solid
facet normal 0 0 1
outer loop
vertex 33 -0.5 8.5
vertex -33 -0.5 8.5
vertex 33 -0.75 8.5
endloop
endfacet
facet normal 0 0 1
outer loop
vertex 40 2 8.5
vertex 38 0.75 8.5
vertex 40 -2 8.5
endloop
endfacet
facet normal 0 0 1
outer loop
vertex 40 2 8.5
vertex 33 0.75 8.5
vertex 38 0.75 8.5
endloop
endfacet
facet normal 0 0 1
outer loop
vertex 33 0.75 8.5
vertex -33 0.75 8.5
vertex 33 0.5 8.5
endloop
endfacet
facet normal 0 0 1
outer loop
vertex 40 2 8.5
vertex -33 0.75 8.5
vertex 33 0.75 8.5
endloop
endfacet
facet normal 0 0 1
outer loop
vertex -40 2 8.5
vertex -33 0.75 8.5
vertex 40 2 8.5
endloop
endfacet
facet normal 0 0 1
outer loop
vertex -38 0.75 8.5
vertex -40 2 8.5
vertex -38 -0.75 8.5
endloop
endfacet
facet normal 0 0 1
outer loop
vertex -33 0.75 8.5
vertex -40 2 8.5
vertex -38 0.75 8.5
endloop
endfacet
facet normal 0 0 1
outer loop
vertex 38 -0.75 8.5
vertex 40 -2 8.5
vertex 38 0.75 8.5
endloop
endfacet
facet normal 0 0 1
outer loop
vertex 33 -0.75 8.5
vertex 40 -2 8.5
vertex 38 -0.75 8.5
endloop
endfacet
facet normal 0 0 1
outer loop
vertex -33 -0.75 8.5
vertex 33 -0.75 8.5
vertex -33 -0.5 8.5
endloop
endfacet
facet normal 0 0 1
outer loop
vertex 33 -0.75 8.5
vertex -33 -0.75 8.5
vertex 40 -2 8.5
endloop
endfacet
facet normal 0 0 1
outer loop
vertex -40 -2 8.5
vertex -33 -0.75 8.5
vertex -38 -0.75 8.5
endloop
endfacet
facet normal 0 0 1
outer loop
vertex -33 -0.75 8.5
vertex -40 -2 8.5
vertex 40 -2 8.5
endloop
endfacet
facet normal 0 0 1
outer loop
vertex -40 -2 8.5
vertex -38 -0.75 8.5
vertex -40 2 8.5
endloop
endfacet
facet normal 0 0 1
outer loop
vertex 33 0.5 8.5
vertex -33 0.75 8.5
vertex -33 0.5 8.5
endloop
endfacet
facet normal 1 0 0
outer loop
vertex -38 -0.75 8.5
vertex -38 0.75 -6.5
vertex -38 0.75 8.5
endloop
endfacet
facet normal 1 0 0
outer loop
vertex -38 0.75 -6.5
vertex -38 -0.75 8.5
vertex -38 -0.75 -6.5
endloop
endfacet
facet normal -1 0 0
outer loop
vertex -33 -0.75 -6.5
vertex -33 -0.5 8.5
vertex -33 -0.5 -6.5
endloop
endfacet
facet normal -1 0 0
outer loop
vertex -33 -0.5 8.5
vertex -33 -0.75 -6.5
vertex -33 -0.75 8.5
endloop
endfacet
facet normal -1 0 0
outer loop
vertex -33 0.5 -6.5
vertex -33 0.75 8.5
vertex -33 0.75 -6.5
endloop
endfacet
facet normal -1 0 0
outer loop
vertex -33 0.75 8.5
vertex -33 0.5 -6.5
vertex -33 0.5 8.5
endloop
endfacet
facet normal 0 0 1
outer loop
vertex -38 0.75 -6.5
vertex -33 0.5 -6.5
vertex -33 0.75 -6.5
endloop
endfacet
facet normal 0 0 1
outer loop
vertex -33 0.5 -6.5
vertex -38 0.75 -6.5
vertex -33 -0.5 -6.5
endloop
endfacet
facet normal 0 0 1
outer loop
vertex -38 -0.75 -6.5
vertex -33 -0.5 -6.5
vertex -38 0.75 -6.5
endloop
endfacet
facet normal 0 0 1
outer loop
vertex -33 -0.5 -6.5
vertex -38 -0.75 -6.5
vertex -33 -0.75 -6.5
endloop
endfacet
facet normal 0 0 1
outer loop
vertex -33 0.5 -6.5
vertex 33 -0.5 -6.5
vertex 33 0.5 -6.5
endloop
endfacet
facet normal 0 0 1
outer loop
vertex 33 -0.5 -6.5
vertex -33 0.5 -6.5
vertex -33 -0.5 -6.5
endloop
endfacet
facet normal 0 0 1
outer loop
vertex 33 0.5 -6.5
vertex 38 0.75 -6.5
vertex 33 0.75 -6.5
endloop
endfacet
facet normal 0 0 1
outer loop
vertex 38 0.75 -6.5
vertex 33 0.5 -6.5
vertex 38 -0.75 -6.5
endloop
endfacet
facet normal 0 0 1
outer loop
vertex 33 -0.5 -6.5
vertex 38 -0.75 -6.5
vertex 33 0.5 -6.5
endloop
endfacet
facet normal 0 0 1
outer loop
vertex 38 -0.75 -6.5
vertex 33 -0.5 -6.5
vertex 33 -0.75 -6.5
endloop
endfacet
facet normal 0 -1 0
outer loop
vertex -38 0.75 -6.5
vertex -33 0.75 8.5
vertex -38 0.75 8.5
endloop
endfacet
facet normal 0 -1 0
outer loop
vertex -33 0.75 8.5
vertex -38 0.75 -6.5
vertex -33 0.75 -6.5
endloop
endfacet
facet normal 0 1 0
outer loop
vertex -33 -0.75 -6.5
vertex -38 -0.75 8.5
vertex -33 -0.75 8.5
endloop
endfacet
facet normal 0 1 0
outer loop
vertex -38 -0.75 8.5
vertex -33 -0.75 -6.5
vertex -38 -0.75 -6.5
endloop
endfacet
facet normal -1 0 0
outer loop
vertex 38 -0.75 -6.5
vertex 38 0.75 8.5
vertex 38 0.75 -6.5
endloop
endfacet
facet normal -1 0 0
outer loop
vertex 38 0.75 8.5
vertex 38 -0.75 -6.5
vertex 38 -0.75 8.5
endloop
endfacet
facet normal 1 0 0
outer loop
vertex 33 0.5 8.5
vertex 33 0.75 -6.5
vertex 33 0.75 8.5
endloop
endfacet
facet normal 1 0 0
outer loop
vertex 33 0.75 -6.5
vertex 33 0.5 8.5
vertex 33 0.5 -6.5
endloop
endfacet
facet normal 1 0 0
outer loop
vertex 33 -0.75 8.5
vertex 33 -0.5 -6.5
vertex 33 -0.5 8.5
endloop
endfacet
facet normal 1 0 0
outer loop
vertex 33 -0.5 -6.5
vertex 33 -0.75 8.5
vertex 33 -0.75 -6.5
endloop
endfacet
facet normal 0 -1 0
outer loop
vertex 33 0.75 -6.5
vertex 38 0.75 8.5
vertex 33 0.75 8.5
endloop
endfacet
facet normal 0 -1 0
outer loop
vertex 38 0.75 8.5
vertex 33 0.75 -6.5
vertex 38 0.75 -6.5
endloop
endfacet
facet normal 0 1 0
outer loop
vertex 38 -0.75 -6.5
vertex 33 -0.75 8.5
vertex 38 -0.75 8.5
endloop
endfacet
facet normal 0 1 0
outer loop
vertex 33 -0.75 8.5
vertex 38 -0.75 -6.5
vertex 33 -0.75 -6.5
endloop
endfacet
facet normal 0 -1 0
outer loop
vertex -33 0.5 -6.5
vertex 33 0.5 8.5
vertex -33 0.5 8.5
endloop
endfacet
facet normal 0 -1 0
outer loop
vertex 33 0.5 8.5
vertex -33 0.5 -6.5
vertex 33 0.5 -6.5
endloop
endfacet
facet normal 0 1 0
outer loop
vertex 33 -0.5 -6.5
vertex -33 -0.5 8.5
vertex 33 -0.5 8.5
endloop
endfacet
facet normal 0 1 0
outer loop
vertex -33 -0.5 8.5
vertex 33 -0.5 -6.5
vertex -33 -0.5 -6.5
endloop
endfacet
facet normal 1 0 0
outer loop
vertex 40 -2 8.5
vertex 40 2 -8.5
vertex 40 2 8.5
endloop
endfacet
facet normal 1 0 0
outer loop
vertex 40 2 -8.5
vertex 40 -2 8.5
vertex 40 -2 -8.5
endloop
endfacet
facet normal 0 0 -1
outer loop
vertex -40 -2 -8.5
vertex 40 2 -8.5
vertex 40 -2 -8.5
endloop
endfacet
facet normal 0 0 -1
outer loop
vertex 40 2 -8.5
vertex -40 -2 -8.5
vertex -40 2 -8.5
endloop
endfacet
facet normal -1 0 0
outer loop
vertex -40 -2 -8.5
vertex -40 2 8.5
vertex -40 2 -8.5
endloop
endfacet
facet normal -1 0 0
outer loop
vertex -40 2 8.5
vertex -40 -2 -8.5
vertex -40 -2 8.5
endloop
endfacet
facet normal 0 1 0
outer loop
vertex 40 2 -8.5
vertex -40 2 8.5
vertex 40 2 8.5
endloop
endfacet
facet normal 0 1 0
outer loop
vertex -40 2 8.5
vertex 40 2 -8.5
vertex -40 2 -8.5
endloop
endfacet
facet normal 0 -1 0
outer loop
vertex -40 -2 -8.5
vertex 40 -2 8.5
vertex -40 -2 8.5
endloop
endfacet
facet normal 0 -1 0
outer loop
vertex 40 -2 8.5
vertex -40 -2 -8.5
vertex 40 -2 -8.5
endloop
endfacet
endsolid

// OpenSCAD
// Relativity SCAD library
// https://raw.githubusercontent.com/aleung/relativity.scad/master/relativity.scad
include <../../lib/relativity.scad/relativity.scad>

differed("cut", "not(cut)", "normal")
box([80, 4, 17])
  align(z) box([76, 1, 15], anchor=z, $class="cut") {
    mirrored(x) align(x) box([5, 1.5, 15], anchor=x);
    // align(y-z) box([66, 0.3, 2], anchor=y-z, $class="normal");
  }
